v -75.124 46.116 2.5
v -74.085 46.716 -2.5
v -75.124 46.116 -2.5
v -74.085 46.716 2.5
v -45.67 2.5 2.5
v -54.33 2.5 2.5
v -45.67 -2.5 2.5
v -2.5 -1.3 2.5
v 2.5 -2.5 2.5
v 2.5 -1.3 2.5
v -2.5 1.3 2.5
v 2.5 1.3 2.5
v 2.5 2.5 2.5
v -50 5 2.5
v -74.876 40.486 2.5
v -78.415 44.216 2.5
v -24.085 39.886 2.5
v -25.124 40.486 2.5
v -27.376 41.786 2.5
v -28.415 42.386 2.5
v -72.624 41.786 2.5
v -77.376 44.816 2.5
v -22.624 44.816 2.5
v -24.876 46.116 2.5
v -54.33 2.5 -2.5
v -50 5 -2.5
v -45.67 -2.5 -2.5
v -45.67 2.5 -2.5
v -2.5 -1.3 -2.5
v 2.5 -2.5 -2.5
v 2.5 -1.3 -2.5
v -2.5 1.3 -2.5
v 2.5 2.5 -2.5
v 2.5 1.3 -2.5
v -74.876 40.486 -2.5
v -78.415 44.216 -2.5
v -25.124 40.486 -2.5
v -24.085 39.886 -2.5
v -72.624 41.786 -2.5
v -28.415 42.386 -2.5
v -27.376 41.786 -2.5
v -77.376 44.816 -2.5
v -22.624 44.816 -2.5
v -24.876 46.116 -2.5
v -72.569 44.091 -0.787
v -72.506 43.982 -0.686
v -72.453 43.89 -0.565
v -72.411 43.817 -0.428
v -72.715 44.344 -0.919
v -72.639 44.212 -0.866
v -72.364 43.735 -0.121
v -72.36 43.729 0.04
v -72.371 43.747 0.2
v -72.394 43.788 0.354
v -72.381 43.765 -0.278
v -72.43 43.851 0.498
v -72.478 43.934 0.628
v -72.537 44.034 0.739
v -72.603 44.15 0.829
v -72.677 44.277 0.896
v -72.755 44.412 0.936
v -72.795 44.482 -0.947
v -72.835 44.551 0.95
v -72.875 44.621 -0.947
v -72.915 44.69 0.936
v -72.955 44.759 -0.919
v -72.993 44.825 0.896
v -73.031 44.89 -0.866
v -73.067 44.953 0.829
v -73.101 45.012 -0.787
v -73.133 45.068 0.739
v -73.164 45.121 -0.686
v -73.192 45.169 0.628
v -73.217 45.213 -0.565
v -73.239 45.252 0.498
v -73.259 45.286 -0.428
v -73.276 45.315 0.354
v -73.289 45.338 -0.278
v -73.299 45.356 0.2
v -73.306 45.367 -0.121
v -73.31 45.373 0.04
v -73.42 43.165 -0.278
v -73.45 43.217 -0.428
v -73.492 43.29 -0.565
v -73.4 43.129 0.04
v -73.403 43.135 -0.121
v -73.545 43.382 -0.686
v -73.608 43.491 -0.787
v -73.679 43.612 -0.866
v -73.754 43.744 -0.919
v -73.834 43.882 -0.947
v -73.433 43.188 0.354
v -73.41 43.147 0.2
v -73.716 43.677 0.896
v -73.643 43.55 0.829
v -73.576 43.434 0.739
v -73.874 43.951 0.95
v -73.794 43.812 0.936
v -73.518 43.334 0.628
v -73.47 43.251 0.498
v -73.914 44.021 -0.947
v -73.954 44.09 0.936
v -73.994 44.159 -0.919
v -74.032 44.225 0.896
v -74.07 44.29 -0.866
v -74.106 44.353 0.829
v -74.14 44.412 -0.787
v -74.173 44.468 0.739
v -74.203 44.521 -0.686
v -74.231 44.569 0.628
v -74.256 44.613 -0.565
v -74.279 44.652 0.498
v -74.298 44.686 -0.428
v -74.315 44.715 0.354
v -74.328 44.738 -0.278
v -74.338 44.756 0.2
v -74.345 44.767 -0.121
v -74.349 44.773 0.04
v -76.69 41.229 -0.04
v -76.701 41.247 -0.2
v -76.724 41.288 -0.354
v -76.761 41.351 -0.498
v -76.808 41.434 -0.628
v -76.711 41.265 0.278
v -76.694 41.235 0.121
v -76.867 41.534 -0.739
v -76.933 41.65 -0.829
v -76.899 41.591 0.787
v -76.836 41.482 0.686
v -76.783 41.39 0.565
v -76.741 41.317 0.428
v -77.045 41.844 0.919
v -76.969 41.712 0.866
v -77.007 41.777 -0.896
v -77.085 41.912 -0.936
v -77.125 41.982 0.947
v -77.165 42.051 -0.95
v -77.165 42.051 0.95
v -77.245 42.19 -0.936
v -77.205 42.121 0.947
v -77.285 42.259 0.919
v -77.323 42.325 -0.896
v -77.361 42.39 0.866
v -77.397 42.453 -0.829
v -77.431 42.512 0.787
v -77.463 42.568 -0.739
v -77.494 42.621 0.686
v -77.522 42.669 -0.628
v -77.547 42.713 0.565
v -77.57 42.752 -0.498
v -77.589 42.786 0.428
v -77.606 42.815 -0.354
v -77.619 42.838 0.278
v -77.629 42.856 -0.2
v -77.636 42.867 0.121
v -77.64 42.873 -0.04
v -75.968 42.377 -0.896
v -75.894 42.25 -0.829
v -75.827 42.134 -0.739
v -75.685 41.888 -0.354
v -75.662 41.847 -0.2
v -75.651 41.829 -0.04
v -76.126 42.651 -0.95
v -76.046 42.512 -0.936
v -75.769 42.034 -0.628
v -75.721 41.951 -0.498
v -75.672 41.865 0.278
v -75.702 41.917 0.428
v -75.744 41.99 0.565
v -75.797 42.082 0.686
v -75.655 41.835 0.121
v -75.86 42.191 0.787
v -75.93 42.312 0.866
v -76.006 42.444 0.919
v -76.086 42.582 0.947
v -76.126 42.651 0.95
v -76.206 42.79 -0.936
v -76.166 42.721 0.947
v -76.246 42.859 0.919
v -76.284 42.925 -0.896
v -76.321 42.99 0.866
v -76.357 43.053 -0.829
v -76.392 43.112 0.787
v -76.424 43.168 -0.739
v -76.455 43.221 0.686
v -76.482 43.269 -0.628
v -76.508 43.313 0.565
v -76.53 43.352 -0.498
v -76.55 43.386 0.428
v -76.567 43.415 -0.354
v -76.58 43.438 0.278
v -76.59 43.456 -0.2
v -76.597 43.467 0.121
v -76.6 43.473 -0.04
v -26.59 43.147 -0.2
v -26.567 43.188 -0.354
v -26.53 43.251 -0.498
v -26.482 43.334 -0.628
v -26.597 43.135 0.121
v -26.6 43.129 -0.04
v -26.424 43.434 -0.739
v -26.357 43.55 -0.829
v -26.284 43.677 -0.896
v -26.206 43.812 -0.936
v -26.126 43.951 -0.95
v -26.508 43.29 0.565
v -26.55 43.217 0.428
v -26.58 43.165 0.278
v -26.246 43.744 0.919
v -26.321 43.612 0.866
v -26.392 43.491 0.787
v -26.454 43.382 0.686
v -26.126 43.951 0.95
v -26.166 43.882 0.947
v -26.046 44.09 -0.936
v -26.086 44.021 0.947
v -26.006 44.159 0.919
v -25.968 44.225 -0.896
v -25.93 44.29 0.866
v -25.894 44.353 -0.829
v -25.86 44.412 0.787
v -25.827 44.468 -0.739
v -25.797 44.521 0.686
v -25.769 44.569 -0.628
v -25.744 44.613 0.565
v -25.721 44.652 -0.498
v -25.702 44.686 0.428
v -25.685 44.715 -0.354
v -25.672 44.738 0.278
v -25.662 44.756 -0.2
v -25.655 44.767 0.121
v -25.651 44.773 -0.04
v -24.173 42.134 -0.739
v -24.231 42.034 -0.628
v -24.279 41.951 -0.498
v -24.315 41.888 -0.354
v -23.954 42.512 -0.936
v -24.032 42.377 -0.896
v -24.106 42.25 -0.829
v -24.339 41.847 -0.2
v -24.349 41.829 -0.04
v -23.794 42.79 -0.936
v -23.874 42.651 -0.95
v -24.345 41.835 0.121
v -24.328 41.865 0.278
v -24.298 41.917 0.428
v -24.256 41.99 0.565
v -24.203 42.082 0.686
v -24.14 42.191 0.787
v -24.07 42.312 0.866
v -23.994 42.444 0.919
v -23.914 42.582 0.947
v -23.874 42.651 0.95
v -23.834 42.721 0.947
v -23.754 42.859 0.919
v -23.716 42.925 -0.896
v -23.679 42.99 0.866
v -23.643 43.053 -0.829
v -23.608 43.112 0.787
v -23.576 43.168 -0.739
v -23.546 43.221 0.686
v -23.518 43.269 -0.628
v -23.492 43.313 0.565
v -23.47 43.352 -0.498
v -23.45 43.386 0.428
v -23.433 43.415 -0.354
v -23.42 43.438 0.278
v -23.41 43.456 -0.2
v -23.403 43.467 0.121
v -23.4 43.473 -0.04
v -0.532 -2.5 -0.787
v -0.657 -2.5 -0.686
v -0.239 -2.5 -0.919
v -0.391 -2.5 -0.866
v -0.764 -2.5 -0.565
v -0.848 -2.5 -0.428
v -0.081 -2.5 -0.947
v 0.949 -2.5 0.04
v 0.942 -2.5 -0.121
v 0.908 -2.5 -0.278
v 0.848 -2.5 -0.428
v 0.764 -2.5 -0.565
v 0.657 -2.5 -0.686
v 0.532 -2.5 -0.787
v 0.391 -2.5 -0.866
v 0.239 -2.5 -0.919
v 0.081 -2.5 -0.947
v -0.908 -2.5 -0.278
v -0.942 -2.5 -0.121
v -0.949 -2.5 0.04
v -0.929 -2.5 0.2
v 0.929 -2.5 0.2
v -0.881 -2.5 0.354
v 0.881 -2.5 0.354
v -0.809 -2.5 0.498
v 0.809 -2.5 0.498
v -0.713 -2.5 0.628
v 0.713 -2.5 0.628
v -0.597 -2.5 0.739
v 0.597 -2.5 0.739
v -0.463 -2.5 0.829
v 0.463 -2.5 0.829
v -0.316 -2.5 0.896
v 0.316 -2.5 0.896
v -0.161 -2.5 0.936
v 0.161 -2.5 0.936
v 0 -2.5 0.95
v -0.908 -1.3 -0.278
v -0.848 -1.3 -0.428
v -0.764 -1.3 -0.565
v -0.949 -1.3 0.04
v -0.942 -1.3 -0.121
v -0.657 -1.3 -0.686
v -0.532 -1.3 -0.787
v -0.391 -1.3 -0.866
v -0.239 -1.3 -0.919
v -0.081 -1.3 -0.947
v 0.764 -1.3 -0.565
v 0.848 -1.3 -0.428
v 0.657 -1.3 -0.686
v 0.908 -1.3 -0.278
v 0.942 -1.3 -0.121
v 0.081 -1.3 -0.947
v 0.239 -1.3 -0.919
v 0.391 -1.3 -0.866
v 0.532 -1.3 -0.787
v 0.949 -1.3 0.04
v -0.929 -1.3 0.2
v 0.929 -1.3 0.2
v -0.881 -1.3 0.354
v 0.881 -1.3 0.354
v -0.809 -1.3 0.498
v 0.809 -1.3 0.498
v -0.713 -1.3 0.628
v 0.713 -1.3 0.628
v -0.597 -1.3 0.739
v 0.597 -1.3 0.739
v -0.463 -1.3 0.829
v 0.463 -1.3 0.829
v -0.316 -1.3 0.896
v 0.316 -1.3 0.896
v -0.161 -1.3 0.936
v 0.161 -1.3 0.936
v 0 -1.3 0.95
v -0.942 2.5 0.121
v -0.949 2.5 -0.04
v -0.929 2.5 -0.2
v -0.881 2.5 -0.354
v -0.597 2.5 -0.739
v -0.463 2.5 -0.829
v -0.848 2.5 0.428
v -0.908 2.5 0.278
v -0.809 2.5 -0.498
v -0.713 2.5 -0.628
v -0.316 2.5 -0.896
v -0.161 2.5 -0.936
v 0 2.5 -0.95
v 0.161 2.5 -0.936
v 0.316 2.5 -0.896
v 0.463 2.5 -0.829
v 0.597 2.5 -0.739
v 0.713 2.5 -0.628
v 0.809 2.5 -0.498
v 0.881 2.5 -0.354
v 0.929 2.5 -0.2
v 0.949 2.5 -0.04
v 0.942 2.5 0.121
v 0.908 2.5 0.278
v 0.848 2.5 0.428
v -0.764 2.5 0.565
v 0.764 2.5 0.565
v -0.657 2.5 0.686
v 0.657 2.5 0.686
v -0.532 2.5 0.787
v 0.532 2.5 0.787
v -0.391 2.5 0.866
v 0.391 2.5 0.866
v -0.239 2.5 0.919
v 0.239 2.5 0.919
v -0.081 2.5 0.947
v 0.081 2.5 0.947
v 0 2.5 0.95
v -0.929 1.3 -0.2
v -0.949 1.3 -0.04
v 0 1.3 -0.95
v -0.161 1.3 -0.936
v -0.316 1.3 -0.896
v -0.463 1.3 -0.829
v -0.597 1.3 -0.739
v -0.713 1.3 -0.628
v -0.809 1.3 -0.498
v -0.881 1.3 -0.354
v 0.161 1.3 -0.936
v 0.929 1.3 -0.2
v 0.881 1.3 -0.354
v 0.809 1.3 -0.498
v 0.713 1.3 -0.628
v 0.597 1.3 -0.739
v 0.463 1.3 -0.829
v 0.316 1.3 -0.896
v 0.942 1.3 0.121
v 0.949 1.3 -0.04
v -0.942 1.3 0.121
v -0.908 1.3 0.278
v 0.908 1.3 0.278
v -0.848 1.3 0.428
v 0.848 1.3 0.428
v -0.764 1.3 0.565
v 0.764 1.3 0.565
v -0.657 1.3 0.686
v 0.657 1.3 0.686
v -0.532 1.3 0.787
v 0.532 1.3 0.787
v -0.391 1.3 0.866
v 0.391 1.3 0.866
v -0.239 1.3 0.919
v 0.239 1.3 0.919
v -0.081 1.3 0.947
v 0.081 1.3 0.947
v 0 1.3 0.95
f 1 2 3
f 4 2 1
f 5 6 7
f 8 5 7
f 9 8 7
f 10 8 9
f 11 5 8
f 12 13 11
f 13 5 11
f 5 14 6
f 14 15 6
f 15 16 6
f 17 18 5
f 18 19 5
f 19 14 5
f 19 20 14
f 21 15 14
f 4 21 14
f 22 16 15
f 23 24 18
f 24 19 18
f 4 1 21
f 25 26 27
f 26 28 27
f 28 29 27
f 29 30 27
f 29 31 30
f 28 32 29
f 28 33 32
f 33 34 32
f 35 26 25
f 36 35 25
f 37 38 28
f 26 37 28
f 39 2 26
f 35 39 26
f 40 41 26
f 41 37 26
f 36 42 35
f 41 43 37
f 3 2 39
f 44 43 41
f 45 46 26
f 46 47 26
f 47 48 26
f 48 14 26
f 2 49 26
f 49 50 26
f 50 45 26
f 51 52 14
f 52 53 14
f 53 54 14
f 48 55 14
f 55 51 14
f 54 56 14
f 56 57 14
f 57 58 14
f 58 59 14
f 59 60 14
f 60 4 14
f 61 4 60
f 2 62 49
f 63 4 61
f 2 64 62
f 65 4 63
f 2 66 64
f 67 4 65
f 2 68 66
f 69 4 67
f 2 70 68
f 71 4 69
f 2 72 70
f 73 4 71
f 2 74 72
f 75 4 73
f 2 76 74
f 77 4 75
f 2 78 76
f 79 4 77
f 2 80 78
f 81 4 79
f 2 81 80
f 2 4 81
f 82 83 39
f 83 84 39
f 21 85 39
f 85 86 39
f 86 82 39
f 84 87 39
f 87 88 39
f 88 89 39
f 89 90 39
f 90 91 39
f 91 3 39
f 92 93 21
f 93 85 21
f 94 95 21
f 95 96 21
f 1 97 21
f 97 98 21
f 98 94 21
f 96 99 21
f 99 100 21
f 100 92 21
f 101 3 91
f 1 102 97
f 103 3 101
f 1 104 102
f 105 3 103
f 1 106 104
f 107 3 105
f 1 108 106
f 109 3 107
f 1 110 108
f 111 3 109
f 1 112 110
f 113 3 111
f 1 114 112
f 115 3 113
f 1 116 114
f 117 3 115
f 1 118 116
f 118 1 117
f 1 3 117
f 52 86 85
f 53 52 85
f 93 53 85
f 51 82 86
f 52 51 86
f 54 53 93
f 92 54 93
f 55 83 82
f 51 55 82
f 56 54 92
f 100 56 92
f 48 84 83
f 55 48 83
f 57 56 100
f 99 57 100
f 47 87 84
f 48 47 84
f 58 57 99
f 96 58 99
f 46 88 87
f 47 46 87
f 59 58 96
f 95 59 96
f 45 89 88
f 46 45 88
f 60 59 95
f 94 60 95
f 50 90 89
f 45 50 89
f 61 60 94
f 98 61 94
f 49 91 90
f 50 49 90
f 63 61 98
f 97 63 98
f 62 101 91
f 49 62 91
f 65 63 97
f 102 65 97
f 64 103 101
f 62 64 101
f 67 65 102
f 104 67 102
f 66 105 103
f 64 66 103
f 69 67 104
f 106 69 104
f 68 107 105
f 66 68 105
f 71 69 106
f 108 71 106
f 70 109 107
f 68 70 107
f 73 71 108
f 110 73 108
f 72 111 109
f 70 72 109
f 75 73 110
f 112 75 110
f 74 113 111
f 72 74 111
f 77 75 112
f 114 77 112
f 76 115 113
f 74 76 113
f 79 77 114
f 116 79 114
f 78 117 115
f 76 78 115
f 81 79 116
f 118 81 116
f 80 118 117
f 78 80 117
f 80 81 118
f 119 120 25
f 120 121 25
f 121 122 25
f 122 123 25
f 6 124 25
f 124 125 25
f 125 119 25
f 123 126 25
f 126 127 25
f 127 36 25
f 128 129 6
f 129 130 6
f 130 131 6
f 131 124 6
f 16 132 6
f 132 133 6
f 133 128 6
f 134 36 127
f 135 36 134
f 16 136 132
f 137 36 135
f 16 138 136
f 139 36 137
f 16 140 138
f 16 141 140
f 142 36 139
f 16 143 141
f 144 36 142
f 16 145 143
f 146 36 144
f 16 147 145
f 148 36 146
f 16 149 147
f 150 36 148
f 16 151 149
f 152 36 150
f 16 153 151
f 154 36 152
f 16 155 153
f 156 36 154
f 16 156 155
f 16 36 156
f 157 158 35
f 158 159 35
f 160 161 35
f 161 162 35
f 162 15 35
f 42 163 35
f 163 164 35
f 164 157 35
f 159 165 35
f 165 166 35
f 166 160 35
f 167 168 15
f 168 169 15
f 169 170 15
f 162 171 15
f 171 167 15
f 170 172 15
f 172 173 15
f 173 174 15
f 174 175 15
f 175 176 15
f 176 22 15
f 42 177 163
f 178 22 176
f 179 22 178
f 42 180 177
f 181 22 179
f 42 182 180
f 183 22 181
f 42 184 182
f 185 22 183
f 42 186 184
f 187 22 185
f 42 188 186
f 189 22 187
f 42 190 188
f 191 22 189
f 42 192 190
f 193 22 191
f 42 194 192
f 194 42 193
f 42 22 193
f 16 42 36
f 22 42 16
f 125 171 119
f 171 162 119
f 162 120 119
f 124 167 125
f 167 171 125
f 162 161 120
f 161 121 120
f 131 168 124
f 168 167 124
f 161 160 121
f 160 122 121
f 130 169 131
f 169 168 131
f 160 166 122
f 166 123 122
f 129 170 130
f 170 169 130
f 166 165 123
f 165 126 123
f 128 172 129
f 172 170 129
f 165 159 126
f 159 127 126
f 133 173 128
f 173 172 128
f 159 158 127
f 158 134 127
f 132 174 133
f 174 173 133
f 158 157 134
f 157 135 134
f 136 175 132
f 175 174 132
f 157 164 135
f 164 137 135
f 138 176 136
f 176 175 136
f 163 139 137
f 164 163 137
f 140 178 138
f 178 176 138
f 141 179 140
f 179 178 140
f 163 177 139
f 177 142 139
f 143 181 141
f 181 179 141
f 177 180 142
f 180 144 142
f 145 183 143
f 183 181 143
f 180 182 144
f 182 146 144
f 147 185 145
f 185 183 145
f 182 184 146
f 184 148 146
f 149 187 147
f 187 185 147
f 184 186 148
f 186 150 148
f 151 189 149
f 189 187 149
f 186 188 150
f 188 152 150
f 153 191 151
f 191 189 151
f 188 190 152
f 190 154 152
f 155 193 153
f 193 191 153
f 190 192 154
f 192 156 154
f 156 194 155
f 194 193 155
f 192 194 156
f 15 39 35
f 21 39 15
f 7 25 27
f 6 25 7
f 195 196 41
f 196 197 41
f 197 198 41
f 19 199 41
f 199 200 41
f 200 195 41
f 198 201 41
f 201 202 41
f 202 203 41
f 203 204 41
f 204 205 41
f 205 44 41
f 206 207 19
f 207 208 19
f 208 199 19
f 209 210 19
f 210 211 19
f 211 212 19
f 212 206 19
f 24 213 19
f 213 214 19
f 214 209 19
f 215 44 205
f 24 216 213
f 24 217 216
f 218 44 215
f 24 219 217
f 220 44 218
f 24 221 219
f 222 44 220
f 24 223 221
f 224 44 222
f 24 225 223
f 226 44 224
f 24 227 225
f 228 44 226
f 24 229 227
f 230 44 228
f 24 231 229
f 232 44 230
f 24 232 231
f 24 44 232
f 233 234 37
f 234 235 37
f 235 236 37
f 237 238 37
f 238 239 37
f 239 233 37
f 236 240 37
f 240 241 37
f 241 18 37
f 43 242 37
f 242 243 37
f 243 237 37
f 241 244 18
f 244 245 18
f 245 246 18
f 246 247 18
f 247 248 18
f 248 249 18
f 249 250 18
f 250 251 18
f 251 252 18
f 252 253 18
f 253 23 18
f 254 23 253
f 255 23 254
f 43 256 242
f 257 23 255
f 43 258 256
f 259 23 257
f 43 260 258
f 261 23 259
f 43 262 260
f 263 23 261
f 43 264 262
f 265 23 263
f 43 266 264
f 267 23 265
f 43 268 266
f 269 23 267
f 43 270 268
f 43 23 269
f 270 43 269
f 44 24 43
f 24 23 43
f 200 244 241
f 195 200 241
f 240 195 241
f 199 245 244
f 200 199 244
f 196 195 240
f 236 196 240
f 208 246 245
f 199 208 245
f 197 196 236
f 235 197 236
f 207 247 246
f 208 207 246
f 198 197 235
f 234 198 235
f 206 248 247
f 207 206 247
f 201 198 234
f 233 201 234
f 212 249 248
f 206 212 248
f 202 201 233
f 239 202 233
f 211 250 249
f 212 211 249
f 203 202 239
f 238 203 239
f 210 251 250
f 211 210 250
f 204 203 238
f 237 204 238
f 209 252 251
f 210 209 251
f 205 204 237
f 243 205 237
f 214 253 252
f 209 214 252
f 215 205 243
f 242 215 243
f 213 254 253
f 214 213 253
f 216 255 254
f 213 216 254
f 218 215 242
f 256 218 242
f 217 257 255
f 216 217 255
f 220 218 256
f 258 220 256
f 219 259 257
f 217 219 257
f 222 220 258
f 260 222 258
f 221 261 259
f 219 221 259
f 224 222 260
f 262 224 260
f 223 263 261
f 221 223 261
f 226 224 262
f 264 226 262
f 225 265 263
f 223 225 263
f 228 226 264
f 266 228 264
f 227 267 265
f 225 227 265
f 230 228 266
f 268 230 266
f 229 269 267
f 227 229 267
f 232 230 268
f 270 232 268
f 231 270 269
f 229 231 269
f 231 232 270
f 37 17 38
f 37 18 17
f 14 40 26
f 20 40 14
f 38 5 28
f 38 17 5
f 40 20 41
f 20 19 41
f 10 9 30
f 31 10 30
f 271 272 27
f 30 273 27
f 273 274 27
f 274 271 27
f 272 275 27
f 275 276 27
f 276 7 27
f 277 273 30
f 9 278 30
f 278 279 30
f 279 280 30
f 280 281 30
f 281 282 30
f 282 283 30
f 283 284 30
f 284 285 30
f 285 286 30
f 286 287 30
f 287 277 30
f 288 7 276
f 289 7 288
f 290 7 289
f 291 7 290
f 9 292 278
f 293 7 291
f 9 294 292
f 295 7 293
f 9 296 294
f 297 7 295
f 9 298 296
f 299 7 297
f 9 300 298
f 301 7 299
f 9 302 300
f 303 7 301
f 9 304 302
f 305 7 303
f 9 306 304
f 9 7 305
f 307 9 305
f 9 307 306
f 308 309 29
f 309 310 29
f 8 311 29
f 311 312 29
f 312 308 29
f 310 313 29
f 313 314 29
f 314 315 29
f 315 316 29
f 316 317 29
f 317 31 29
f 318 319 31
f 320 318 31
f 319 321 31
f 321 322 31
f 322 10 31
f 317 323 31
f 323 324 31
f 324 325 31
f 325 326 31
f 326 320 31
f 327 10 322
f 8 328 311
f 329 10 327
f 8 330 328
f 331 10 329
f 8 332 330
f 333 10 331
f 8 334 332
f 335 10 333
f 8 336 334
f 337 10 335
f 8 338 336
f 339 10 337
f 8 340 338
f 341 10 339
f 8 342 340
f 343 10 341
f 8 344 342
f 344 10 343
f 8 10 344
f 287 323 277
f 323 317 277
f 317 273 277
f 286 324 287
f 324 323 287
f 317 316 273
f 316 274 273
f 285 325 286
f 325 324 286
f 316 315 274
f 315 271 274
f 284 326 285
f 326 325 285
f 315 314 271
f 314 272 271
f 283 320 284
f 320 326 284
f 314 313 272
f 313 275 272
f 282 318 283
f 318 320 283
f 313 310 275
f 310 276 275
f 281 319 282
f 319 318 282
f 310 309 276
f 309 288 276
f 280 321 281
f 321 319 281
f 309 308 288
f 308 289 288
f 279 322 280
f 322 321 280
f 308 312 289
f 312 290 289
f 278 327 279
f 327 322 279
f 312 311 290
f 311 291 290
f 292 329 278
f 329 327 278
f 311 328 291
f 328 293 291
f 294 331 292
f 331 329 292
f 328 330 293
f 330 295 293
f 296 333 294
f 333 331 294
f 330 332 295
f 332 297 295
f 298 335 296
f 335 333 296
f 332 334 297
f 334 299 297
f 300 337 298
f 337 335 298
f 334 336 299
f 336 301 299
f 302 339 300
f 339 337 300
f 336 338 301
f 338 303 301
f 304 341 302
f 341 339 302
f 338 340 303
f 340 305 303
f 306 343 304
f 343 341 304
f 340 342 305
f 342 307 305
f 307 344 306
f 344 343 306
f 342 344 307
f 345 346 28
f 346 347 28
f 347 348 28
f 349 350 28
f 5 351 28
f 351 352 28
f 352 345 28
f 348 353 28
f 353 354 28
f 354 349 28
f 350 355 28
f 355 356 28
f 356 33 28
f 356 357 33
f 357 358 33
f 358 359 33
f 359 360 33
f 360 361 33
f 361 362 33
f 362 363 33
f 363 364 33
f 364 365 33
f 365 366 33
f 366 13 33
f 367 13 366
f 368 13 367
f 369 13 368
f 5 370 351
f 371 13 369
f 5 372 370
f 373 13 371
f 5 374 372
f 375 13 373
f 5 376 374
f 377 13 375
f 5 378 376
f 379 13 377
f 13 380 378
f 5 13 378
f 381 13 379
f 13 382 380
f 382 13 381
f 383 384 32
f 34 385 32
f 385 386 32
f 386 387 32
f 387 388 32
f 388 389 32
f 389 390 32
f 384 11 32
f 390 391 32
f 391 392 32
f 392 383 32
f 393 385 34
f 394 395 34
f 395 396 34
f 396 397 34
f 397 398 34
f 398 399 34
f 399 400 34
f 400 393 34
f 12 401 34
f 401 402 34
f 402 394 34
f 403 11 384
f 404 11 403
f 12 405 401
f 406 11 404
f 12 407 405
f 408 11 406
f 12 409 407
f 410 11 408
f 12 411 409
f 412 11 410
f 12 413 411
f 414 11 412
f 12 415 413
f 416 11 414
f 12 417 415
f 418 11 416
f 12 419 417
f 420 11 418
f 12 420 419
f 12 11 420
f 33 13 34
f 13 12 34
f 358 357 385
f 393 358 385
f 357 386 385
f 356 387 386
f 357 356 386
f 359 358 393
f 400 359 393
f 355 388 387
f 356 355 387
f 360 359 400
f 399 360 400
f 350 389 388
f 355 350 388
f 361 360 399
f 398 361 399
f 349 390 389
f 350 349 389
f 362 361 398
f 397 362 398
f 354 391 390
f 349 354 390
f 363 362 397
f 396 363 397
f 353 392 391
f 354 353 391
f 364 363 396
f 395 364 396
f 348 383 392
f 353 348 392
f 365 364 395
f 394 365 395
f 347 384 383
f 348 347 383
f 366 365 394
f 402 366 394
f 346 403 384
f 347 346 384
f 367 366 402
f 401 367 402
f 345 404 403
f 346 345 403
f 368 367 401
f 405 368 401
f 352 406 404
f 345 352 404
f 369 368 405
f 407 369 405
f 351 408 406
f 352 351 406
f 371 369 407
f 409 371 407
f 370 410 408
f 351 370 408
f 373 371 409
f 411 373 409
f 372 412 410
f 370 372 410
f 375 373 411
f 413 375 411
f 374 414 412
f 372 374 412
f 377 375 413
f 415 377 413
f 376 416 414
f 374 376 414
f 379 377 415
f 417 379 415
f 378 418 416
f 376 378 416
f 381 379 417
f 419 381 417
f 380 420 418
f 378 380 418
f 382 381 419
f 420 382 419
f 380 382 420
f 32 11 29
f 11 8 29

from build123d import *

# Parameters (mm, degrees)
SKETCH1_W               = 5
SKETCH1_H               = 5
SKETCH1_R               = 0.95
CENTER_DEPTH            = 1.3
RIGHTSIDE_START         = 1.3
SKETCH1_2_W             = 5
SKETCH1_2_H             = 5
SKETCH1_2_R             = 0.95
RIGHTSIDE_DEPTH         = 1.2
LEFTSIDE_START          = -1.3
SKETCH1_3_W             = 5
SKETCH1_3_H             = 5
SKETCH1_3_R             = 0.95
LEFTSIDE_DEPTH          = 1.2
SKETCH3_W               = 5
SKETCH3_H               = 5
BOSS_EXTRUDE4_DEPTH     = 47.5
CUT_EXTRUDE1_DEPTH      = 5
CIRPATTERN2_COUNT       = 6
CIRPATTERN3_COUNT       = 3
CIRPATTERN4_START       = -1.3
CIRPATTERN4_OUTLINE_W   = 5
CIRPATTERN4_OUTLINE_H   = 5
CIRPATTERN4_OUTLINE_R   = 0.95
CIRPATTERN4_DEPTH       = 2.6
CIRPATTERN4_START_2     = -44.601270189
CIRPATTERN4_2_OUTLINE_W = 5
CIRPATTERN4_2_OUTLINE_H = 5
CIRPATTERN4_2_OUTLINE_R = 0.95
CIRPATTERN4_2_DEPTH     = 2.6
CIRPATTERN4_3_OUTLINE_W = 5
CIRPATTERN4_3_OUTLINE_H = 5
CIRPATTERN4_3_OUTLINE_R = 0.95
CIRPATTERN4_3_DEPTH     = 2.6
SKETCH5_W               = 5
SKETCH5_H               = 2.6
CUT_EXTRUDE2_DEPTH      = 5


# Read off the part's stored shape, not the designer's step: CirPattern4
with BuildPart() as part:
    # Sketch1 → Center (new, symmetric)
    with BuildSketch(Plane(origin=(0, 0, 0), x_dir=(1, 0, 0), z_dir=(0, 1, 0))):
        Rectangle(SKETCH1_W, SKETCH1_H)
        with Locations(Location((0, 0, 0), (0, 0, 270))):
            Circle(SKETCH1_R, mode=Mode.SUBTRACT)
    extrude(amount=CENTER_DEPTH, both=True)

    # Sketch5 → Cut-Extrude2 (cut)
    with BuildSketch(Plane(origin=(2.5, 0, 0), x_dir=(0, 0, -1), z_dir=(1, 0, 0))):
        Rectangle(SKETCH5_W, SKETCH5_H)
    extrude(amount=-CUT_EXTRUDE2_DEPTH, mode=Mode.SUBTRACT)


with BuildPart() as body_2:
    # Sketch1<2> → RightSide (new body)
    with BuildSketch(Plane(origin=(0, 0, 0), x_dir=(1, 0, 0), z_dir=(0, 1, 0)).offset(RIGHTSIDE_START)):
        Rectangle(SKETCH1_2_W, SKETCH1_2_H)
        with Locations(Location((0, 0, 0), (0, 0, 270))):
            Circle(SKETCH1_2_R, mode=Mode.SUBTRACT)
    extrude(amount=RIGHTSIDE_DEPTH)


with BuildPart() as body_3:
    # Sketch1<3> → LeftSide (new body)
    with BuildSketch(Plane(origin=(0, 0, 0), x_dir=(1, 0, 0), z_dir=(0, 1, 0)).offset(LEFTSIDE_START)):
        Rectangle(SKETCH1_3_W, SKETCH1_3_H)
        with Locations(Location((0, 0, 0), (0, 0, 270))):
            Circle(SKETCH1_3_R, mode=Mode.SUBTRACT)
    extrude(amount=-LEFTSIDE_DEPTH)


with BuildPart() as body_4:
    # Sketch3 → Boss-Extrude4 (new body)
    with BuildSketch(Plane.ZY.offset(2.5)):
        Rectangle(SKETCH3_W, SKETCH3_H)
    extrude(amount=BOSS_EXTRUDE4_DEPTH)

    # Sketch4 → Cut-Extrude1 (cut)
    with BuildSketch(Plane.XY.offset(-2.5)):
        Polygon((-50, 0), (-50, -2.5), (-45.669872981, -2.5), align=None)
        Polygon((-50, 2.5), (-50, 0), (-45.669872981, 2.5), align=None)
    extrude(amount=CUT_EXTRUDE1_DEPTH, mode=Mode.SUBTRACT)


with BuildPart() as cirpattern2_1:
    # CirPattern2: pattern copy
    add(body_4.part.rotate(Axis((-50, 0, 0), (0, 0, 1)), 1 * 360 / CIRPATTERN2_COUNT))


with BuildPart() as cirpattern2_2:
    # CirPattern2: pattern copy
    add(body_4.part.rotate(Axis((-50, 0, 0), (0, 0, 1)), 2 * 360 / CIRPATTERN2_COUNT))


with BuildPart() as cirpattern2_3:
    # CirPattern2: pattern copy
    add(body_4.part.rotate(Axis((-50, 0, 0), (0, 0, 1)), 3 * 360 / CIRPATTERN2_COUNT))


with BuildPart() as cirpattern2_4:
    # CirPattern2: pattern copy
    add(body_4.part.rotate(Axis((-50, 0, 0), (0, 0, 1)), 4 * 360 / CIRPATTERN2_COUNT))


with BuildPart() as cirpattern2_5:
    # CirPattern2: pattern copy
    add(body_4.part.rotate(Axis((-50, 0, 0), (0, 0, 1)), 5 * 360 / CIRPATTERN2_COUNT))


with BuildPart() as cirpattern3_1:
    # CirPattern3: pattern copy
    add(body_3.part.rotate(Axis((-50, 0, 0), (0, 0, 1)), 1 * 360 / CIRPATTERN3_COUNT))


with BuildPart() as cirpattern3_2:
    # CirPattern3: pattern copy
    add(body_3.part.rotate(Axis((-50, 0, 0), (0, 0, 1)), 2 * 360 / CIRPATTERN3_COUNT))


with BuildPart() as cirpattern3_3:
    # CirPattern3: pattern copy
    add(body_2.part.rotate(Axis((-50, 0, 0), (0, 0, 1)), 1 * 360 / CIRPATTERN3_COUNT))


with BuildPart() as cirpattern3_4:
    # CirPattern3: pattern copy
    add(body_2.part.rotate(Axis((-50, 0, 0), (0, 0, 1)), 2 * 360 / CIRPATTERN3_COUNT))


with BuildPart() as body_14:
    # CirPattern4 outline → CirPattern4 (new body)
    with BuildSketch(Plane(origin=(0, 0, 0), x_dir=(1, 0, 0), z_dir=(0, 1, 0)).offset(CIRPATTERN4_START)):
        with Locations((-100, 0)):
            Rectangle(CIRPATTERN4_OUTLINE_W, CIRPATTERN4_OUTLINE_H)
        with Locations((-100, 0)):
            Circle(CIRPATTERN4_OUTLINE_R, mode=Mode.SUBTRACT)
    extrude(amount=CIRPATTERN4_DEPTH)


with BuildPart() as body_15:
    # CirPattern4 2 outline → CirPattern4 2 (new body)
    with BuildSketch(Plane(origin=(0, 0, 0), x_dir=(0.5000000000000098, -0.8660254037844329, 0), z_dir=(0.8660254037844329, 0.50000000000001, 0)).offset(CIRPATTERN4_START_2)):
        with Locations((25, 0)):
            Rectangle(CIRPATTERN4_2_OUTLINE_W, CIRPATTERN4_2_OUTLINE_H)
        with Locations((25, 0)):
            Circle(CIRPATTERN4_2_OUTLINE_R, mode=Mode.SUBTRACT)
    extrude(amount=CIRPATTERN4_2_DEPTH)


with BuildPart() as body_16:
    # CirPattern4 3 outline → CirPattern4 3 (new body)
    with BuildSketch(Plane(origin=(0, 0, 0), x_dir=(0.49999999999999767, 0.86602540378444, 0), z_dir=(0.8660254037844399, -0.49999999999999795, 0)).offset(CIRPATTERN4_START_2)):
        with Locations((25, 0)):
            Rectangle(CIRPATTERN4_3_OUTLINE_W, CIRPATTERN4_3_OUTLINE_H)
        with Locations((25, 0)):
            Circle(CIRPATTERN4_3_OUTLINE_R, mode=Mode.SUBTRACT)
    extrude(amount=CIRPATTERN4_3_DEPTH)


with BuildPart() as cirpattern3_1_1:
    add(cirpattern3_1.part)

    # Combine1: union CirPattern3_3, CirPattern2_2, body 16, CirPattern2_1, body 3, body 2, body 4
    add(cirpattern3_3.part)
    add(cirpattern2_2.part)
    add(body_16.part)
    add(cirpattern2_1.part)
    add(body_3.part)
    add(body_2.part)
    add(body_4.part)

    # Combine3: cut CirPattern2_5, CirPattern3_2, body 15, CirPattern2_4, CirPattern3_4, CirPattern2_3, body 14
    add(cirpattern2_5.part, mode=Mode.SUBTRACT)
    add(cirpattern3_2.part, mode=Mode.SUBTRACT)
    add(body_15.part, mode=Mode.SUBTRACT)
    add(cirpattern2_4.part, mode=Mode.SUBTRACT)
    add(cirpattern3_4.part, mode=Mode.SUBTRACT)
    add(cirpattern2_3.part, mode=Mode.SUBTRACT)
    add(body_14.part, mode=Mode.SUBTRACT)


solid = cirpattern3_1_1.part
